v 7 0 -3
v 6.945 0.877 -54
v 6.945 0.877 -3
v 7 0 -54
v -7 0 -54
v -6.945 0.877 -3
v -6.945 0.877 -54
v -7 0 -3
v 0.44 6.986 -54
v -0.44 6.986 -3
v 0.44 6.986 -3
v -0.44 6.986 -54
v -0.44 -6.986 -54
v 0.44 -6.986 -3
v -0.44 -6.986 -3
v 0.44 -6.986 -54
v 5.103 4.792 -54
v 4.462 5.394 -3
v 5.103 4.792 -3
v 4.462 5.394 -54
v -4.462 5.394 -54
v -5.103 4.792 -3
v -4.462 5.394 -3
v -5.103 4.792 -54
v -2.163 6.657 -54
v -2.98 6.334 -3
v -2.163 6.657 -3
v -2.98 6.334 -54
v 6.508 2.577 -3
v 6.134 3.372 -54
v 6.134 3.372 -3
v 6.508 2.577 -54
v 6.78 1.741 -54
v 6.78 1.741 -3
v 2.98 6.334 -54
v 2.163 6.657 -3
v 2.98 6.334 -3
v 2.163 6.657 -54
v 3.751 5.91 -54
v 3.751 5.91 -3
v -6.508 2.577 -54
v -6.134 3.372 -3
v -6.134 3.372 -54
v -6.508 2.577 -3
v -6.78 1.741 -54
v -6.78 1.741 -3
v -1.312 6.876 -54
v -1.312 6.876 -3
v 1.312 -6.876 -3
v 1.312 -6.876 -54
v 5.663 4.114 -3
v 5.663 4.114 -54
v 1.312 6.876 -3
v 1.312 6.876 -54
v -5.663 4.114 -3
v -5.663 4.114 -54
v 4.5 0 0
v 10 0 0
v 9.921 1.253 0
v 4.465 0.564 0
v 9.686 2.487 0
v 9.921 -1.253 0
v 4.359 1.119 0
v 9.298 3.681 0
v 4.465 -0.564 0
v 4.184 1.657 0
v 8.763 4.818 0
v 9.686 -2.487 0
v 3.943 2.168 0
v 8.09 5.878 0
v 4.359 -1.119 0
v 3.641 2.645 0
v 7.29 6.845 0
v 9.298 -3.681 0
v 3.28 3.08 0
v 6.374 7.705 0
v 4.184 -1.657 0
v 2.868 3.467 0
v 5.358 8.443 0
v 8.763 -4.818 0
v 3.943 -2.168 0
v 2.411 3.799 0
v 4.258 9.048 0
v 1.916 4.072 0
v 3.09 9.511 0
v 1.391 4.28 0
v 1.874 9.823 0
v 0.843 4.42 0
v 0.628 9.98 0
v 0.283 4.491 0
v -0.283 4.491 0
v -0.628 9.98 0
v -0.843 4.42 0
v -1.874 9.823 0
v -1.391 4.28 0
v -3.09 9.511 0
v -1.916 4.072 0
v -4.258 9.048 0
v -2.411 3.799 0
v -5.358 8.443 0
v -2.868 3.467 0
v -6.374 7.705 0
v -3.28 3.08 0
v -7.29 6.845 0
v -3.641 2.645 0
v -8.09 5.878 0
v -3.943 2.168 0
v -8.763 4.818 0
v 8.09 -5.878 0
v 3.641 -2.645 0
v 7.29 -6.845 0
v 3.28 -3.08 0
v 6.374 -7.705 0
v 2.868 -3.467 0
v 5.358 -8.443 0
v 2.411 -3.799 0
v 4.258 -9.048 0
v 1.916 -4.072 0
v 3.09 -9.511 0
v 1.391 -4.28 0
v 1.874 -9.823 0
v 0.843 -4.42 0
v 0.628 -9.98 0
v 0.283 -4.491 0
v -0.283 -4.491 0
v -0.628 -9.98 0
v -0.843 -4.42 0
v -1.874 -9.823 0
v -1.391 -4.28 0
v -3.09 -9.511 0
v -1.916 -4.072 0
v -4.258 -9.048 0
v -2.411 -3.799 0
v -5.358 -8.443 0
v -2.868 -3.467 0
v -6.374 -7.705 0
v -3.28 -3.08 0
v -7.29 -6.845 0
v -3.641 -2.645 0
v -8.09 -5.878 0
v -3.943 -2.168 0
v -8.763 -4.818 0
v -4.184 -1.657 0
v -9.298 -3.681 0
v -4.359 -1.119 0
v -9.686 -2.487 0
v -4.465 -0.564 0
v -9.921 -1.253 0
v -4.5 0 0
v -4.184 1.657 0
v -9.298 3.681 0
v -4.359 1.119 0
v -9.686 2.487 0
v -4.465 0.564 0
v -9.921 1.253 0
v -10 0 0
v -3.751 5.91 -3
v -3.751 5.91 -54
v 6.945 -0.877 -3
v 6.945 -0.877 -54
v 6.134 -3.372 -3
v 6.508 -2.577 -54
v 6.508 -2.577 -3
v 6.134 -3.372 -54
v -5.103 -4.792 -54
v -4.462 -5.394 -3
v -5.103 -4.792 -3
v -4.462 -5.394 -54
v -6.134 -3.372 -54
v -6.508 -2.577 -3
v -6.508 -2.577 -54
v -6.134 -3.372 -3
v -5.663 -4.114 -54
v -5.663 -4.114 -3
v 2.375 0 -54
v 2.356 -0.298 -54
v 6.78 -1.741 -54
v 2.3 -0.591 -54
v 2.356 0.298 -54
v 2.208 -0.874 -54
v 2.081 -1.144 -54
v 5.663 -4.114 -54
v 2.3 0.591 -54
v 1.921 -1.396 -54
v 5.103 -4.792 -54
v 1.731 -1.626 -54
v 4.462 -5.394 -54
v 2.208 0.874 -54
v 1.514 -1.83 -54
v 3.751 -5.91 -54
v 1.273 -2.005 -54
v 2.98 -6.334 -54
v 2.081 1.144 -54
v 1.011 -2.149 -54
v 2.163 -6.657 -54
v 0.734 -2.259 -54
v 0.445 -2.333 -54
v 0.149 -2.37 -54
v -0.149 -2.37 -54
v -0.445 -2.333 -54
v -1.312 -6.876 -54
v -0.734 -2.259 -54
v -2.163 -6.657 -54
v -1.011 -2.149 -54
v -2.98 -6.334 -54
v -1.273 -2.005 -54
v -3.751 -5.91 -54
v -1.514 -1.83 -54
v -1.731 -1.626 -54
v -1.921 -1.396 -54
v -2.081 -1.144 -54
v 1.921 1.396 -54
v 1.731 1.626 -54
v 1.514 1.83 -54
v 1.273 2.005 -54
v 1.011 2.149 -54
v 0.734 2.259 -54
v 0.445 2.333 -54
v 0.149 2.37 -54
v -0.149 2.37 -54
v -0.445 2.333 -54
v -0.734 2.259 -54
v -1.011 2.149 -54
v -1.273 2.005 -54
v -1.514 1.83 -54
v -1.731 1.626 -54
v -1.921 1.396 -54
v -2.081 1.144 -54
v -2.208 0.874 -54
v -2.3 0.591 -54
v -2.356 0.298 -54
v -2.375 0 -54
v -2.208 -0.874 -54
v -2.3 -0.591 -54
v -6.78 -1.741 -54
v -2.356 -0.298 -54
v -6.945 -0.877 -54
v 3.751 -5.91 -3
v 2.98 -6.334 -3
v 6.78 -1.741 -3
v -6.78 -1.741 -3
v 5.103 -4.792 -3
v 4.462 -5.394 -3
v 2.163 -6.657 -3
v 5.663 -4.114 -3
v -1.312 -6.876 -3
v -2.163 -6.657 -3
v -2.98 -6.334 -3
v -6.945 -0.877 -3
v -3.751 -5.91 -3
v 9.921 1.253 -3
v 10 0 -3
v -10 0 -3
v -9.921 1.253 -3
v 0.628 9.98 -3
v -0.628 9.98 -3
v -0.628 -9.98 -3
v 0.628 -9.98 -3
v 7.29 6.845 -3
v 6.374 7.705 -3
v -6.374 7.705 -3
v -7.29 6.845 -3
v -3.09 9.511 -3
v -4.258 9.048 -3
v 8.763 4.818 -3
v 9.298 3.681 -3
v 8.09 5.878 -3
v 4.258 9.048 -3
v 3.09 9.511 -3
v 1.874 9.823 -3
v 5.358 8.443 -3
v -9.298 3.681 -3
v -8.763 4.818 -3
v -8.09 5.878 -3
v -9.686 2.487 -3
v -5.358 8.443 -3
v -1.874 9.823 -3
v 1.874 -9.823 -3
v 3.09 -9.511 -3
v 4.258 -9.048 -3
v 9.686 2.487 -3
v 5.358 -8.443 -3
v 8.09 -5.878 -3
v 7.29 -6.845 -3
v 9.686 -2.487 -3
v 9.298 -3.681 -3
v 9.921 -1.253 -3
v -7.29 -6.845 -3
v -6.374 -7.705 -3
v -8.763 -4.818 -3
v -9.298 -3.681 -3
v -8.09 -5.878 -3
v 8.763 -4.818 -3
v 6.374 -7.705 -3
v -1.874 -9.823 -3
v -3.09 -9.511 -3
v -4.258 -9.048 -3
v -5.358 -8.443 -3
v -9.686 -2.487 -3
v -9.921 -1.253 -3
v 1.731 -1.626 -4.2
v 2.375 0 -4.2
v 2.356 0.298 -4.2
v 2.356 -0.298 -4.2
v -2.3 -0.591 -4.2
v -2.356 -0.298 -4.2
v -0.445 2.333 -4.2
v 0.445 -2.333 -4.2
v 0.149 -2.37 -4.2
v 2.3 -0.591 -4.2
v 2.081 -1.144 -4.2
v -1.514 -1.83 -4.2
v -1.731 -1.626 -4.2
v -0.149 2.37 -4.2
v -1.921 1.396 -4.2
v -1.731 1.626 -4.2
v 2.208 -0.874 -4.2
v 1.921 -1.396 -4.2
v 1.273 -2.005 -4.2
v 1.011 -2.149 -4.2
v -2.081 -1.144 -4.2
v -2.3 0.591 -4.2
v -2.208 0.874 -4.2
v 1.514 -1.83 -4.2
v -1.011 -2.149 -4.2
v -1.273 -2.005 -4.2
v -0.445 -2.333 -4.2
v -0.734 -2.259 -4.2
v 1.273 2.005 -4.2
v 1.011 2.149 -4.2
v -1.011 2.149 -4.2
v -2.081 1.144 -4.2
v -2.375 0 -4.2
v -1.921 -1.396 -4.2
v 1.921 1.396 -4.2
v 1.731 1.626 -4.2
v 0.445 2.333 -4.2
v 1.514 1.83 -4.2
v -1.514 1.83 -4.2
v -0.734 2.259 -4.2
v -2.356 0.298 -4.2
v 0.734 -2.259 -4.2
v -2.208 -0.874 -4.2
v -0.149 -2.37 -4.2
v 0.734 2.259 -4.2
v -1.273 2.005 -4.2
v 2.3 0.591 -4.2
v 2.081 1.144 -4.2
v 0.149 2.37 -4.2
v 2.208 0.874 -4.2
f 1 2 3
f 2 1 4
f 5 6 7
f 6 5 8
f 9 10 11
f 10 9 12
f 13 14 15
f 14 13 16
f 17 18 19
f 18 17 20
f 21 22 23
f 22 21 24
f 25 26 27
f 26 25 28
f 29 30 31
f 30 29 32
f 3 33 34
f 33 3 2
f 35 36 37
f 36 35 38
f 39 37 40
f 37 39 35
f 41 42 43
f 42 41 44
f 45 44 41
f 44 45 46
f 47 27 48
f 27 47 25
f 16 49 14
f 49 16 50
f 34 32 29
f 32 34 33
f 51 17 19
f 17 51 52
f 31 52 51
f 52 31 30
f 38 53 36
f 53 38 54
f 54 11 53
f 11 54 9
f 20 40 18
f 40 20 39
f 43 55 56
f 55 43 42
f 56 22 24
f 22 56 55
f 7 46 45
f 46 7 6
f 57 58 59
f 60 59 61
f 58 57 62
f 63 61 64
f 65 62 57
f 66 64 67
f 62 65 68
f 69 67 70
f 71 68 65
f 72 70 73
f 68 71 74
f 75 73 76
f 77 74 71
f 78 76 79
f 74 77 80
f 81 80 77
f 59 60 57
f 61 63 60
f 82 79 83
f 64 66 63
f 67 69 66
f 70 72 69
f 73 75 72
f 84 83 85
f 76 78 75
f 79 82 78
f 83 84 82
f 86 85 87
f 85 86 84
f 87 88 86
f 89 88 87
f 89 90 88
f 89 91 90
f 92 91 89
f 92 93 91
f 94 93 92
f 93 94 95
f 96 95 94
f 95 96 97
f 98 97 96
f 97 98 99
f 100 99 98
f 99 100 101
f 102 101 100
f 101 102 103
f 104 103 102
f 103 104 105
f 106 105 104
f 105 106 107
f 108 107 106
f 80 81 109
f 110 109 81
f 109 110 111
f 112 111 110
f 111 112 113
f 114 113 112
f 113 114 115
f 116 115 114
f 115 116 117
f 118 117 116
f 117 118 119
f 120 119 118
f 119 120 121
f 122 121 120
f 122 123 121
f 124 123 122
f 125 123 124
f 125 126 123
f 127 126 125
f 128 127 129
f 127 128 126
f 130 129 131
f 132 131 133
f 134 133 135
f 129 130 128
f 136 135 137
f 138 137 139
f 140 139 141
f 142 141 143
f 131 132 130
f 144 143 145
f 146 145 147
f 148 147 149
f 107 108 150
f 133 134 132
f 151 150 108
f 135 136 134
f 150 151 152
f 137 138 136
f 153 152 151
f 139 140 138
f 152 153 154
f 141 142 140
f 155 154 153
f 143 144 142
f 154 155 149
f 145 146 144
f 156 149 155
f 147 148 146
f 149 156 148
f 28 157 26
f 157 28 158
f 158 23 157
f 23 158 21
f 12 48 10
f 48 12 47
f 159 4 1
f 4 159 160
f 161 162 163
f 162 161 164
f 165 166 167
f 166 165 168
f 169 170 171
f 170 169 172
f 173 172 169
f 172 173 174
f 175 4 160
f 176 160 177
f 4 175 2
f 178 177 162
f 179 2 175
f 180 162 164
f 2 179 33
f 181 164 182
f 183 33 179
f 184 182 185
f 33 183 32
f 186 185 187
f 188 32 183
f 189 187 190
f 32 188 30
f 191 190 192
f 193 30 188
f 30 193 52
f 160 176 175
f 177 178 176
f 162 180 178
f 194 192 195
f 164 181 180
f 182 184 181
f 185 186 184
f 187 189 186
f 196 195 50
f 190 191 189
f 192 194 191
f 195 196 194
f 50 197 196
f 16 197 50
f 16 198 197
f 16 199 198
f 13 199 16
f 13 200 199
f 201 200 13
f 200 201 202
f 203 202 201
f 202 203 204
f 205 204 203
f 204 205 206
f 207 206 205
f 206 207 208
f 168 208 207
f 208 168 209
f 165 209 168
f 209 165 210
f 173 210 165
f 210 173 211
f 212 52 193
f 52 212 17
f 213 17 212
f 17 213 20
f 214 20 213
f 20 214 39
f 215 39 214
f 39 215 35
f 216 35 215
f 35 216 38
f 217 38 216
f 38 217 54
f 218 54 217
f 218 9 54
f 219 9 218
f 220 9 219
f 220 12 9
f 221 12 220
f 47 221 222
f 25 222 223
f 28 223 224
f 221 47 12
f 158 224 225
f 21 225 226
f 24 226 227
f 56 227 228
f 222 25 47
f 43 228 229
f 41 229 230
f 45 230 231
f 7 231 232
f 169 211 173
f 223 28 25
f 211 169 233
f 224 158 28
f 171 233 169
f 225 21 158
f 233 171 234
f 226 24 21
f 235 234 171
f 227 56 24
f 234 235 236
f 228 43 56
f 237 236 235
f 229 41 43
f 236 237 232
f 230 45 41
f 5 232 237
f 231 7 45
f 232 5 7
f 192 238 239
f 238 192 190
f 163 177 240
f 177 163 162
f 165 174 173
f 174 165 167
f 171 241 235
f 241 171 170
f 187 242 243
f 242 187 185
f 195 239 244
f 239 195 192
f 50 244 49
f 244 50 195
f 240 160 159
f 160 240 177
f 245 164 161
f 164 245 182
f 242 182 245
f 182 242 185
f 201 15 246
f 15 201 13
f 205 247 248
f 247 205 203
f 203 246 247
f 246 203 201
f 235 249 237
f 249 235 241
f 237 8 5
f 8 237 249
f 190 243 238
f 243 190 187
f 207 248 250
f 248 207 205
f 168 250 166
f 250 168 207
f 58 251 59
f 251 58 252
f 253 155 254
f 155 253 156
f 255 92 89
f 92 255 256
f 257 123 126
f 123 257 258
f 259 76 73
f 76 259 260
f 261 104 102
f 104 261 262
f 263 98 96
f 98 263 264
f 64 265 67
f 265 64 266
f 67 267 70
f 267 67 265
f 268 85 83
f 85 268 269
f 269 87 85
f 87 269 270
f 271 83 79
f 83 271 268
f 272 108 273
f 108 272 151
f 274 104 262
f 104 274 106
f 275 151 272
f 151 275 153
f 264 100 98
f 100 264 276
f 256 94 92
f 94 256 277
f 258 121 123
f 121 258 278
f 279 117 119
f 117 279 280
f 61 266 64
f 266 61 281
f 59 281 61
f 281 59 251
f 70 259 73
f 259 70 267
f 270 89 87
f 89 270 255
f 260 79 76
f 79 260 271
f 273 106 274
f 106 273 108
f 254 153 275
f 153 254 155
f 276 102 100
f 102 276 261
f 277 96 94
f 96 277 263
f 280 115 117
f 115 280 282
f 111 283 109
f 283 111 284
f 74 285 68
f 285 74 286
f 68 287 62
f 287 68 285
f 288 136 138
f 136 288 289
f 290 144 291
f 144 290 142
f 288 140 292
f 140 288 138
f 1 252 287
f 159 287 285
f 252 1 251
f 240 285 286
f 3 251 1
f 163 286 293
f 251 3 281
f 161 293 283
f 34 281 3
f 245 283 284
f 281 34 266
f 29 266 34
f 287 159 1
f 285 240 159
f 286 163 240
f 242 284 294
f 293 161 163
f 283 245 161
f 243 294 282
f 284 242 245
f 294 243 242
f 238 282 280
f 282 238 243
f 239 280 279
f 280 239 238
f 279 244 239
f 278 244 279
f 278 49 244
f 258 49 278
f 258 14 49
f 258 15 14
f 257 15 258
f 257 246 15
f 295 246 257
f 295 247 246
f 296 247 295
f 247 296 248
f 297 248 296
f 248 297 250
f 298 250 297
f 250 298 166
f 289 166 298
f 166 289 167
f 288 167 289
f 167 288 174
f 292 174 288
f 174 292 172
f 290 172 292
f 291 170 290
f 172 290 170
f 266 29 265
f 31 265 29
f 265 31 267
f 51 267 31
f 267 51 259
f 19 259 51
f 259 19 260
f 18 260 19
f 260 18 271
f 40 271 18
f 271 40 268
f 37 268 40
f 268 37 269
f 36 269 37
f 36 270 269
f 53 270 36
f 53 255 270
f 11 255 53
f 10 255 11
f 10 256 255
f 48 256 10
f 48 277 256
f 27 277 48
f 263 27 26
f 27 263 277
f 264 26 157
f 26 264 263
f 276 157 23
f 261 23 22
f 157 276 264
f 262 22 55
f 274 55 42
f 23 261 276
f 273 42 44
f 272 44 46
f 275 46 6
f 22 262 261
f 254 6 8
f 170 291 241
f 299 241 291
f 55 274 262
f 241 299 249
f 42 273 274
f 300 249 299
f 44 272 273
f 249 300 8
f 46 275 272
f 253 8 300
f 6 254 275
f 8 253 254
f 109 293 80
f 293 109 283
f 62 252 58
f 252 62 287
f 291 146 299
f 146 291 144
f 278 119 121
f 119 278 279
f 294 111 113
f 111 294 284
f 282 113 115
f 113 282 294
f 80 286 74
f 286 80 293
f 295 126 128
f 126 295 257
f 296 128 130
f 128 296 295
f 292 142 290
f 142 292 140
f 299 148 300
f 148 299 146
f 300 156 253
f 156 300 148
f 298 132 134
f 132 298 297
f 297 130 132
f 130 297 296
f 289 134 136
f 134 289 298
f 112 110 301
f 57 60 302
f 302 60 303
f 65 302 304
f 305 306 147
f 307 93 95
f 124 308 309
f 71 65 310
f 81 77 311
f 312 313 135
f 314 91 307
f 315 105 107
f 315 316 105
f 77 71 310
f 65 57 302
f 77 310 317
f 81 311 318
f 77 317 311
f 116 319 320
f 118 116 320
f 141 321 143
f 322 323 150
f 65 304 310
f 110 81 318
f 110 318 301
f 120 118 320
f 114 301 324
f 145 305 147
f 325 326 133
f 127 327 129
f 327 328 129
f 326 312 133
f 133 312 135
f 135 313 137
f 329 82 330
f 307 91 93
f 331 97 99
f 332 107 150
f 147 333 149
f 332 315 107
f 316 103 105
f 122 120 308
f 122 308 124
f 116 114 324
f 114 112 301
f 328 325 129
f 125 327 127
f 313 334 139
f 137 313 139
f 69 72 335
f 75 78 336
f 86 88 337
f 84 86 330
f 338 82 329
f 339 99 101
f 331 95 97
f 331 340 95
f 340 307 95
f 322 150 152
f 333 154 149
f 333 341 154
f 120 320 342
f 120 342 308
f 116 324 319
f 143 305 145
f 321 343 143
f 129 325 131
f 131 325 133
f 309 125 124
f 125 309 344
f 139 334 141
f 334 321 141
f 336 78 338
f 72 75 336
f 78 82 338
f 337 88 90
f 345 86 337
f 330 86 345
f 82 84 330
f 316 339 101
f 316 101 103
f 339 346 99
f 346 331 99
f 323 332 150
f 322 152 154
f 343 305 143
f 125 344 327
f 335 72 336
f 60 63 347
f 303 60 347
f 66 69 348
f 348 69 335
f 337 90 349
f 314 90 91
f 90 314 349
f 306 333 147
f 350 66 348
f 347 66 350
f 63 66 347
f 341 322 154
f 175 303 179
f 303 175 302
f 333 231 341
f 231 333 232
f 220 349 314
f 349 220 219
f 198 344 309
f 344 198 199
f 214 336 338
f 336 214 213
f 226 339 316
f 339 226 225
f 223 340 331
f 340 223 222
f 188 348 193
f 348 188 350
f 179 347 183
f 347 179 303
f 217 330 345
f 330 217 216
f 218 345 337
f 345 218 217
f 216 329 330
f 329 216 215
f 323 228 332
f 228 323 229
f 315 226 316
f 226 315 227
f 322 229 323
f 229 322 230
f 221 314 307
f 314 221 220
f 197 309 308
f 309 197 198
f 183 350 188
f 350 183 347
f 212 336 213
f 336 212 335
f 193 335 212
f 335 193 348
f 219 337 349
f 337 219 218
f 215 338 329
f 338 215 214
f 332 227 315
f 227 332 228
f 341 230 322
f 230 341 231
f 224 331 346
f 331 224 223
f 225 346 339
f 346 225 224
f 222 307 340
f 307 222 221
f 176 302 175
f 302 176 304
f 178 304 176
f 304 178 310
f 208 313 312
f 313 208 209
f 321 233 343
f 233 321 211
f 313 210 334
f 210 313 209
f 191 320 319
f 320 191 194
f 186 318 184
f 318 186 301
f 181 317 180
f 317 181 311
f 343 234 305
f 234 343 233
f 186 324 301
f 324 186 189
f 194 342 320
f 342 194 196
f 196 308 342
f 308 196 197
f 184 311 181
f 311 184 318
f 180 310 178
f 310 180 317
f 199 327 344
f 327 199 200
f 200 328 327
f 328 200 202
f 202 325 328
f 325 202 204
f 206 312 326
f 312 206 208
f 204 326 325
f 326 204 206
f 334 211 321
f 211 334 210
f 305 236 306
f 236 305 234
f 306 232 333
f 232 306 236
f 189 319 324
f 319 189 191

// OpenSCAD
$fn = 50;


difference() {
	union() {
		translate(v = [0, 0, -54.0000000000]) {
			cylinder(h = 54, r = 7.0000000000);
		}
		translate(v = [0, 0, -3.0000000000]) {
			cylinder(h = 3, r = 10.0000000000);
		}
	}
	union() {
		translate(v = [0, 0, 0]) {
			rotate(a = [0, 0, 0]) {
				difference() {
					union() {
						#translate(v = [0, 0, -54.0000000000]) {
							cylinder(h = 54, r = 2.2500000000);
						}
						#translate(v = [0, 0, -4.2000000000]) {
							cylinder(h = 4.2000000000, r1 = 2.3750000000, r2 = 4.5000000000);
						}
						#translate(v = [0, 0, -54.0000000000]) {
							cylinder(h = 54, r = 2.3750000000);
						}
						#translate(v = [0, 0, -54.0000000000]) {
							cylinder(h = 54, r = 2.2500000000);
						}
					}
					union();
				}
			}
		}
	}
}
